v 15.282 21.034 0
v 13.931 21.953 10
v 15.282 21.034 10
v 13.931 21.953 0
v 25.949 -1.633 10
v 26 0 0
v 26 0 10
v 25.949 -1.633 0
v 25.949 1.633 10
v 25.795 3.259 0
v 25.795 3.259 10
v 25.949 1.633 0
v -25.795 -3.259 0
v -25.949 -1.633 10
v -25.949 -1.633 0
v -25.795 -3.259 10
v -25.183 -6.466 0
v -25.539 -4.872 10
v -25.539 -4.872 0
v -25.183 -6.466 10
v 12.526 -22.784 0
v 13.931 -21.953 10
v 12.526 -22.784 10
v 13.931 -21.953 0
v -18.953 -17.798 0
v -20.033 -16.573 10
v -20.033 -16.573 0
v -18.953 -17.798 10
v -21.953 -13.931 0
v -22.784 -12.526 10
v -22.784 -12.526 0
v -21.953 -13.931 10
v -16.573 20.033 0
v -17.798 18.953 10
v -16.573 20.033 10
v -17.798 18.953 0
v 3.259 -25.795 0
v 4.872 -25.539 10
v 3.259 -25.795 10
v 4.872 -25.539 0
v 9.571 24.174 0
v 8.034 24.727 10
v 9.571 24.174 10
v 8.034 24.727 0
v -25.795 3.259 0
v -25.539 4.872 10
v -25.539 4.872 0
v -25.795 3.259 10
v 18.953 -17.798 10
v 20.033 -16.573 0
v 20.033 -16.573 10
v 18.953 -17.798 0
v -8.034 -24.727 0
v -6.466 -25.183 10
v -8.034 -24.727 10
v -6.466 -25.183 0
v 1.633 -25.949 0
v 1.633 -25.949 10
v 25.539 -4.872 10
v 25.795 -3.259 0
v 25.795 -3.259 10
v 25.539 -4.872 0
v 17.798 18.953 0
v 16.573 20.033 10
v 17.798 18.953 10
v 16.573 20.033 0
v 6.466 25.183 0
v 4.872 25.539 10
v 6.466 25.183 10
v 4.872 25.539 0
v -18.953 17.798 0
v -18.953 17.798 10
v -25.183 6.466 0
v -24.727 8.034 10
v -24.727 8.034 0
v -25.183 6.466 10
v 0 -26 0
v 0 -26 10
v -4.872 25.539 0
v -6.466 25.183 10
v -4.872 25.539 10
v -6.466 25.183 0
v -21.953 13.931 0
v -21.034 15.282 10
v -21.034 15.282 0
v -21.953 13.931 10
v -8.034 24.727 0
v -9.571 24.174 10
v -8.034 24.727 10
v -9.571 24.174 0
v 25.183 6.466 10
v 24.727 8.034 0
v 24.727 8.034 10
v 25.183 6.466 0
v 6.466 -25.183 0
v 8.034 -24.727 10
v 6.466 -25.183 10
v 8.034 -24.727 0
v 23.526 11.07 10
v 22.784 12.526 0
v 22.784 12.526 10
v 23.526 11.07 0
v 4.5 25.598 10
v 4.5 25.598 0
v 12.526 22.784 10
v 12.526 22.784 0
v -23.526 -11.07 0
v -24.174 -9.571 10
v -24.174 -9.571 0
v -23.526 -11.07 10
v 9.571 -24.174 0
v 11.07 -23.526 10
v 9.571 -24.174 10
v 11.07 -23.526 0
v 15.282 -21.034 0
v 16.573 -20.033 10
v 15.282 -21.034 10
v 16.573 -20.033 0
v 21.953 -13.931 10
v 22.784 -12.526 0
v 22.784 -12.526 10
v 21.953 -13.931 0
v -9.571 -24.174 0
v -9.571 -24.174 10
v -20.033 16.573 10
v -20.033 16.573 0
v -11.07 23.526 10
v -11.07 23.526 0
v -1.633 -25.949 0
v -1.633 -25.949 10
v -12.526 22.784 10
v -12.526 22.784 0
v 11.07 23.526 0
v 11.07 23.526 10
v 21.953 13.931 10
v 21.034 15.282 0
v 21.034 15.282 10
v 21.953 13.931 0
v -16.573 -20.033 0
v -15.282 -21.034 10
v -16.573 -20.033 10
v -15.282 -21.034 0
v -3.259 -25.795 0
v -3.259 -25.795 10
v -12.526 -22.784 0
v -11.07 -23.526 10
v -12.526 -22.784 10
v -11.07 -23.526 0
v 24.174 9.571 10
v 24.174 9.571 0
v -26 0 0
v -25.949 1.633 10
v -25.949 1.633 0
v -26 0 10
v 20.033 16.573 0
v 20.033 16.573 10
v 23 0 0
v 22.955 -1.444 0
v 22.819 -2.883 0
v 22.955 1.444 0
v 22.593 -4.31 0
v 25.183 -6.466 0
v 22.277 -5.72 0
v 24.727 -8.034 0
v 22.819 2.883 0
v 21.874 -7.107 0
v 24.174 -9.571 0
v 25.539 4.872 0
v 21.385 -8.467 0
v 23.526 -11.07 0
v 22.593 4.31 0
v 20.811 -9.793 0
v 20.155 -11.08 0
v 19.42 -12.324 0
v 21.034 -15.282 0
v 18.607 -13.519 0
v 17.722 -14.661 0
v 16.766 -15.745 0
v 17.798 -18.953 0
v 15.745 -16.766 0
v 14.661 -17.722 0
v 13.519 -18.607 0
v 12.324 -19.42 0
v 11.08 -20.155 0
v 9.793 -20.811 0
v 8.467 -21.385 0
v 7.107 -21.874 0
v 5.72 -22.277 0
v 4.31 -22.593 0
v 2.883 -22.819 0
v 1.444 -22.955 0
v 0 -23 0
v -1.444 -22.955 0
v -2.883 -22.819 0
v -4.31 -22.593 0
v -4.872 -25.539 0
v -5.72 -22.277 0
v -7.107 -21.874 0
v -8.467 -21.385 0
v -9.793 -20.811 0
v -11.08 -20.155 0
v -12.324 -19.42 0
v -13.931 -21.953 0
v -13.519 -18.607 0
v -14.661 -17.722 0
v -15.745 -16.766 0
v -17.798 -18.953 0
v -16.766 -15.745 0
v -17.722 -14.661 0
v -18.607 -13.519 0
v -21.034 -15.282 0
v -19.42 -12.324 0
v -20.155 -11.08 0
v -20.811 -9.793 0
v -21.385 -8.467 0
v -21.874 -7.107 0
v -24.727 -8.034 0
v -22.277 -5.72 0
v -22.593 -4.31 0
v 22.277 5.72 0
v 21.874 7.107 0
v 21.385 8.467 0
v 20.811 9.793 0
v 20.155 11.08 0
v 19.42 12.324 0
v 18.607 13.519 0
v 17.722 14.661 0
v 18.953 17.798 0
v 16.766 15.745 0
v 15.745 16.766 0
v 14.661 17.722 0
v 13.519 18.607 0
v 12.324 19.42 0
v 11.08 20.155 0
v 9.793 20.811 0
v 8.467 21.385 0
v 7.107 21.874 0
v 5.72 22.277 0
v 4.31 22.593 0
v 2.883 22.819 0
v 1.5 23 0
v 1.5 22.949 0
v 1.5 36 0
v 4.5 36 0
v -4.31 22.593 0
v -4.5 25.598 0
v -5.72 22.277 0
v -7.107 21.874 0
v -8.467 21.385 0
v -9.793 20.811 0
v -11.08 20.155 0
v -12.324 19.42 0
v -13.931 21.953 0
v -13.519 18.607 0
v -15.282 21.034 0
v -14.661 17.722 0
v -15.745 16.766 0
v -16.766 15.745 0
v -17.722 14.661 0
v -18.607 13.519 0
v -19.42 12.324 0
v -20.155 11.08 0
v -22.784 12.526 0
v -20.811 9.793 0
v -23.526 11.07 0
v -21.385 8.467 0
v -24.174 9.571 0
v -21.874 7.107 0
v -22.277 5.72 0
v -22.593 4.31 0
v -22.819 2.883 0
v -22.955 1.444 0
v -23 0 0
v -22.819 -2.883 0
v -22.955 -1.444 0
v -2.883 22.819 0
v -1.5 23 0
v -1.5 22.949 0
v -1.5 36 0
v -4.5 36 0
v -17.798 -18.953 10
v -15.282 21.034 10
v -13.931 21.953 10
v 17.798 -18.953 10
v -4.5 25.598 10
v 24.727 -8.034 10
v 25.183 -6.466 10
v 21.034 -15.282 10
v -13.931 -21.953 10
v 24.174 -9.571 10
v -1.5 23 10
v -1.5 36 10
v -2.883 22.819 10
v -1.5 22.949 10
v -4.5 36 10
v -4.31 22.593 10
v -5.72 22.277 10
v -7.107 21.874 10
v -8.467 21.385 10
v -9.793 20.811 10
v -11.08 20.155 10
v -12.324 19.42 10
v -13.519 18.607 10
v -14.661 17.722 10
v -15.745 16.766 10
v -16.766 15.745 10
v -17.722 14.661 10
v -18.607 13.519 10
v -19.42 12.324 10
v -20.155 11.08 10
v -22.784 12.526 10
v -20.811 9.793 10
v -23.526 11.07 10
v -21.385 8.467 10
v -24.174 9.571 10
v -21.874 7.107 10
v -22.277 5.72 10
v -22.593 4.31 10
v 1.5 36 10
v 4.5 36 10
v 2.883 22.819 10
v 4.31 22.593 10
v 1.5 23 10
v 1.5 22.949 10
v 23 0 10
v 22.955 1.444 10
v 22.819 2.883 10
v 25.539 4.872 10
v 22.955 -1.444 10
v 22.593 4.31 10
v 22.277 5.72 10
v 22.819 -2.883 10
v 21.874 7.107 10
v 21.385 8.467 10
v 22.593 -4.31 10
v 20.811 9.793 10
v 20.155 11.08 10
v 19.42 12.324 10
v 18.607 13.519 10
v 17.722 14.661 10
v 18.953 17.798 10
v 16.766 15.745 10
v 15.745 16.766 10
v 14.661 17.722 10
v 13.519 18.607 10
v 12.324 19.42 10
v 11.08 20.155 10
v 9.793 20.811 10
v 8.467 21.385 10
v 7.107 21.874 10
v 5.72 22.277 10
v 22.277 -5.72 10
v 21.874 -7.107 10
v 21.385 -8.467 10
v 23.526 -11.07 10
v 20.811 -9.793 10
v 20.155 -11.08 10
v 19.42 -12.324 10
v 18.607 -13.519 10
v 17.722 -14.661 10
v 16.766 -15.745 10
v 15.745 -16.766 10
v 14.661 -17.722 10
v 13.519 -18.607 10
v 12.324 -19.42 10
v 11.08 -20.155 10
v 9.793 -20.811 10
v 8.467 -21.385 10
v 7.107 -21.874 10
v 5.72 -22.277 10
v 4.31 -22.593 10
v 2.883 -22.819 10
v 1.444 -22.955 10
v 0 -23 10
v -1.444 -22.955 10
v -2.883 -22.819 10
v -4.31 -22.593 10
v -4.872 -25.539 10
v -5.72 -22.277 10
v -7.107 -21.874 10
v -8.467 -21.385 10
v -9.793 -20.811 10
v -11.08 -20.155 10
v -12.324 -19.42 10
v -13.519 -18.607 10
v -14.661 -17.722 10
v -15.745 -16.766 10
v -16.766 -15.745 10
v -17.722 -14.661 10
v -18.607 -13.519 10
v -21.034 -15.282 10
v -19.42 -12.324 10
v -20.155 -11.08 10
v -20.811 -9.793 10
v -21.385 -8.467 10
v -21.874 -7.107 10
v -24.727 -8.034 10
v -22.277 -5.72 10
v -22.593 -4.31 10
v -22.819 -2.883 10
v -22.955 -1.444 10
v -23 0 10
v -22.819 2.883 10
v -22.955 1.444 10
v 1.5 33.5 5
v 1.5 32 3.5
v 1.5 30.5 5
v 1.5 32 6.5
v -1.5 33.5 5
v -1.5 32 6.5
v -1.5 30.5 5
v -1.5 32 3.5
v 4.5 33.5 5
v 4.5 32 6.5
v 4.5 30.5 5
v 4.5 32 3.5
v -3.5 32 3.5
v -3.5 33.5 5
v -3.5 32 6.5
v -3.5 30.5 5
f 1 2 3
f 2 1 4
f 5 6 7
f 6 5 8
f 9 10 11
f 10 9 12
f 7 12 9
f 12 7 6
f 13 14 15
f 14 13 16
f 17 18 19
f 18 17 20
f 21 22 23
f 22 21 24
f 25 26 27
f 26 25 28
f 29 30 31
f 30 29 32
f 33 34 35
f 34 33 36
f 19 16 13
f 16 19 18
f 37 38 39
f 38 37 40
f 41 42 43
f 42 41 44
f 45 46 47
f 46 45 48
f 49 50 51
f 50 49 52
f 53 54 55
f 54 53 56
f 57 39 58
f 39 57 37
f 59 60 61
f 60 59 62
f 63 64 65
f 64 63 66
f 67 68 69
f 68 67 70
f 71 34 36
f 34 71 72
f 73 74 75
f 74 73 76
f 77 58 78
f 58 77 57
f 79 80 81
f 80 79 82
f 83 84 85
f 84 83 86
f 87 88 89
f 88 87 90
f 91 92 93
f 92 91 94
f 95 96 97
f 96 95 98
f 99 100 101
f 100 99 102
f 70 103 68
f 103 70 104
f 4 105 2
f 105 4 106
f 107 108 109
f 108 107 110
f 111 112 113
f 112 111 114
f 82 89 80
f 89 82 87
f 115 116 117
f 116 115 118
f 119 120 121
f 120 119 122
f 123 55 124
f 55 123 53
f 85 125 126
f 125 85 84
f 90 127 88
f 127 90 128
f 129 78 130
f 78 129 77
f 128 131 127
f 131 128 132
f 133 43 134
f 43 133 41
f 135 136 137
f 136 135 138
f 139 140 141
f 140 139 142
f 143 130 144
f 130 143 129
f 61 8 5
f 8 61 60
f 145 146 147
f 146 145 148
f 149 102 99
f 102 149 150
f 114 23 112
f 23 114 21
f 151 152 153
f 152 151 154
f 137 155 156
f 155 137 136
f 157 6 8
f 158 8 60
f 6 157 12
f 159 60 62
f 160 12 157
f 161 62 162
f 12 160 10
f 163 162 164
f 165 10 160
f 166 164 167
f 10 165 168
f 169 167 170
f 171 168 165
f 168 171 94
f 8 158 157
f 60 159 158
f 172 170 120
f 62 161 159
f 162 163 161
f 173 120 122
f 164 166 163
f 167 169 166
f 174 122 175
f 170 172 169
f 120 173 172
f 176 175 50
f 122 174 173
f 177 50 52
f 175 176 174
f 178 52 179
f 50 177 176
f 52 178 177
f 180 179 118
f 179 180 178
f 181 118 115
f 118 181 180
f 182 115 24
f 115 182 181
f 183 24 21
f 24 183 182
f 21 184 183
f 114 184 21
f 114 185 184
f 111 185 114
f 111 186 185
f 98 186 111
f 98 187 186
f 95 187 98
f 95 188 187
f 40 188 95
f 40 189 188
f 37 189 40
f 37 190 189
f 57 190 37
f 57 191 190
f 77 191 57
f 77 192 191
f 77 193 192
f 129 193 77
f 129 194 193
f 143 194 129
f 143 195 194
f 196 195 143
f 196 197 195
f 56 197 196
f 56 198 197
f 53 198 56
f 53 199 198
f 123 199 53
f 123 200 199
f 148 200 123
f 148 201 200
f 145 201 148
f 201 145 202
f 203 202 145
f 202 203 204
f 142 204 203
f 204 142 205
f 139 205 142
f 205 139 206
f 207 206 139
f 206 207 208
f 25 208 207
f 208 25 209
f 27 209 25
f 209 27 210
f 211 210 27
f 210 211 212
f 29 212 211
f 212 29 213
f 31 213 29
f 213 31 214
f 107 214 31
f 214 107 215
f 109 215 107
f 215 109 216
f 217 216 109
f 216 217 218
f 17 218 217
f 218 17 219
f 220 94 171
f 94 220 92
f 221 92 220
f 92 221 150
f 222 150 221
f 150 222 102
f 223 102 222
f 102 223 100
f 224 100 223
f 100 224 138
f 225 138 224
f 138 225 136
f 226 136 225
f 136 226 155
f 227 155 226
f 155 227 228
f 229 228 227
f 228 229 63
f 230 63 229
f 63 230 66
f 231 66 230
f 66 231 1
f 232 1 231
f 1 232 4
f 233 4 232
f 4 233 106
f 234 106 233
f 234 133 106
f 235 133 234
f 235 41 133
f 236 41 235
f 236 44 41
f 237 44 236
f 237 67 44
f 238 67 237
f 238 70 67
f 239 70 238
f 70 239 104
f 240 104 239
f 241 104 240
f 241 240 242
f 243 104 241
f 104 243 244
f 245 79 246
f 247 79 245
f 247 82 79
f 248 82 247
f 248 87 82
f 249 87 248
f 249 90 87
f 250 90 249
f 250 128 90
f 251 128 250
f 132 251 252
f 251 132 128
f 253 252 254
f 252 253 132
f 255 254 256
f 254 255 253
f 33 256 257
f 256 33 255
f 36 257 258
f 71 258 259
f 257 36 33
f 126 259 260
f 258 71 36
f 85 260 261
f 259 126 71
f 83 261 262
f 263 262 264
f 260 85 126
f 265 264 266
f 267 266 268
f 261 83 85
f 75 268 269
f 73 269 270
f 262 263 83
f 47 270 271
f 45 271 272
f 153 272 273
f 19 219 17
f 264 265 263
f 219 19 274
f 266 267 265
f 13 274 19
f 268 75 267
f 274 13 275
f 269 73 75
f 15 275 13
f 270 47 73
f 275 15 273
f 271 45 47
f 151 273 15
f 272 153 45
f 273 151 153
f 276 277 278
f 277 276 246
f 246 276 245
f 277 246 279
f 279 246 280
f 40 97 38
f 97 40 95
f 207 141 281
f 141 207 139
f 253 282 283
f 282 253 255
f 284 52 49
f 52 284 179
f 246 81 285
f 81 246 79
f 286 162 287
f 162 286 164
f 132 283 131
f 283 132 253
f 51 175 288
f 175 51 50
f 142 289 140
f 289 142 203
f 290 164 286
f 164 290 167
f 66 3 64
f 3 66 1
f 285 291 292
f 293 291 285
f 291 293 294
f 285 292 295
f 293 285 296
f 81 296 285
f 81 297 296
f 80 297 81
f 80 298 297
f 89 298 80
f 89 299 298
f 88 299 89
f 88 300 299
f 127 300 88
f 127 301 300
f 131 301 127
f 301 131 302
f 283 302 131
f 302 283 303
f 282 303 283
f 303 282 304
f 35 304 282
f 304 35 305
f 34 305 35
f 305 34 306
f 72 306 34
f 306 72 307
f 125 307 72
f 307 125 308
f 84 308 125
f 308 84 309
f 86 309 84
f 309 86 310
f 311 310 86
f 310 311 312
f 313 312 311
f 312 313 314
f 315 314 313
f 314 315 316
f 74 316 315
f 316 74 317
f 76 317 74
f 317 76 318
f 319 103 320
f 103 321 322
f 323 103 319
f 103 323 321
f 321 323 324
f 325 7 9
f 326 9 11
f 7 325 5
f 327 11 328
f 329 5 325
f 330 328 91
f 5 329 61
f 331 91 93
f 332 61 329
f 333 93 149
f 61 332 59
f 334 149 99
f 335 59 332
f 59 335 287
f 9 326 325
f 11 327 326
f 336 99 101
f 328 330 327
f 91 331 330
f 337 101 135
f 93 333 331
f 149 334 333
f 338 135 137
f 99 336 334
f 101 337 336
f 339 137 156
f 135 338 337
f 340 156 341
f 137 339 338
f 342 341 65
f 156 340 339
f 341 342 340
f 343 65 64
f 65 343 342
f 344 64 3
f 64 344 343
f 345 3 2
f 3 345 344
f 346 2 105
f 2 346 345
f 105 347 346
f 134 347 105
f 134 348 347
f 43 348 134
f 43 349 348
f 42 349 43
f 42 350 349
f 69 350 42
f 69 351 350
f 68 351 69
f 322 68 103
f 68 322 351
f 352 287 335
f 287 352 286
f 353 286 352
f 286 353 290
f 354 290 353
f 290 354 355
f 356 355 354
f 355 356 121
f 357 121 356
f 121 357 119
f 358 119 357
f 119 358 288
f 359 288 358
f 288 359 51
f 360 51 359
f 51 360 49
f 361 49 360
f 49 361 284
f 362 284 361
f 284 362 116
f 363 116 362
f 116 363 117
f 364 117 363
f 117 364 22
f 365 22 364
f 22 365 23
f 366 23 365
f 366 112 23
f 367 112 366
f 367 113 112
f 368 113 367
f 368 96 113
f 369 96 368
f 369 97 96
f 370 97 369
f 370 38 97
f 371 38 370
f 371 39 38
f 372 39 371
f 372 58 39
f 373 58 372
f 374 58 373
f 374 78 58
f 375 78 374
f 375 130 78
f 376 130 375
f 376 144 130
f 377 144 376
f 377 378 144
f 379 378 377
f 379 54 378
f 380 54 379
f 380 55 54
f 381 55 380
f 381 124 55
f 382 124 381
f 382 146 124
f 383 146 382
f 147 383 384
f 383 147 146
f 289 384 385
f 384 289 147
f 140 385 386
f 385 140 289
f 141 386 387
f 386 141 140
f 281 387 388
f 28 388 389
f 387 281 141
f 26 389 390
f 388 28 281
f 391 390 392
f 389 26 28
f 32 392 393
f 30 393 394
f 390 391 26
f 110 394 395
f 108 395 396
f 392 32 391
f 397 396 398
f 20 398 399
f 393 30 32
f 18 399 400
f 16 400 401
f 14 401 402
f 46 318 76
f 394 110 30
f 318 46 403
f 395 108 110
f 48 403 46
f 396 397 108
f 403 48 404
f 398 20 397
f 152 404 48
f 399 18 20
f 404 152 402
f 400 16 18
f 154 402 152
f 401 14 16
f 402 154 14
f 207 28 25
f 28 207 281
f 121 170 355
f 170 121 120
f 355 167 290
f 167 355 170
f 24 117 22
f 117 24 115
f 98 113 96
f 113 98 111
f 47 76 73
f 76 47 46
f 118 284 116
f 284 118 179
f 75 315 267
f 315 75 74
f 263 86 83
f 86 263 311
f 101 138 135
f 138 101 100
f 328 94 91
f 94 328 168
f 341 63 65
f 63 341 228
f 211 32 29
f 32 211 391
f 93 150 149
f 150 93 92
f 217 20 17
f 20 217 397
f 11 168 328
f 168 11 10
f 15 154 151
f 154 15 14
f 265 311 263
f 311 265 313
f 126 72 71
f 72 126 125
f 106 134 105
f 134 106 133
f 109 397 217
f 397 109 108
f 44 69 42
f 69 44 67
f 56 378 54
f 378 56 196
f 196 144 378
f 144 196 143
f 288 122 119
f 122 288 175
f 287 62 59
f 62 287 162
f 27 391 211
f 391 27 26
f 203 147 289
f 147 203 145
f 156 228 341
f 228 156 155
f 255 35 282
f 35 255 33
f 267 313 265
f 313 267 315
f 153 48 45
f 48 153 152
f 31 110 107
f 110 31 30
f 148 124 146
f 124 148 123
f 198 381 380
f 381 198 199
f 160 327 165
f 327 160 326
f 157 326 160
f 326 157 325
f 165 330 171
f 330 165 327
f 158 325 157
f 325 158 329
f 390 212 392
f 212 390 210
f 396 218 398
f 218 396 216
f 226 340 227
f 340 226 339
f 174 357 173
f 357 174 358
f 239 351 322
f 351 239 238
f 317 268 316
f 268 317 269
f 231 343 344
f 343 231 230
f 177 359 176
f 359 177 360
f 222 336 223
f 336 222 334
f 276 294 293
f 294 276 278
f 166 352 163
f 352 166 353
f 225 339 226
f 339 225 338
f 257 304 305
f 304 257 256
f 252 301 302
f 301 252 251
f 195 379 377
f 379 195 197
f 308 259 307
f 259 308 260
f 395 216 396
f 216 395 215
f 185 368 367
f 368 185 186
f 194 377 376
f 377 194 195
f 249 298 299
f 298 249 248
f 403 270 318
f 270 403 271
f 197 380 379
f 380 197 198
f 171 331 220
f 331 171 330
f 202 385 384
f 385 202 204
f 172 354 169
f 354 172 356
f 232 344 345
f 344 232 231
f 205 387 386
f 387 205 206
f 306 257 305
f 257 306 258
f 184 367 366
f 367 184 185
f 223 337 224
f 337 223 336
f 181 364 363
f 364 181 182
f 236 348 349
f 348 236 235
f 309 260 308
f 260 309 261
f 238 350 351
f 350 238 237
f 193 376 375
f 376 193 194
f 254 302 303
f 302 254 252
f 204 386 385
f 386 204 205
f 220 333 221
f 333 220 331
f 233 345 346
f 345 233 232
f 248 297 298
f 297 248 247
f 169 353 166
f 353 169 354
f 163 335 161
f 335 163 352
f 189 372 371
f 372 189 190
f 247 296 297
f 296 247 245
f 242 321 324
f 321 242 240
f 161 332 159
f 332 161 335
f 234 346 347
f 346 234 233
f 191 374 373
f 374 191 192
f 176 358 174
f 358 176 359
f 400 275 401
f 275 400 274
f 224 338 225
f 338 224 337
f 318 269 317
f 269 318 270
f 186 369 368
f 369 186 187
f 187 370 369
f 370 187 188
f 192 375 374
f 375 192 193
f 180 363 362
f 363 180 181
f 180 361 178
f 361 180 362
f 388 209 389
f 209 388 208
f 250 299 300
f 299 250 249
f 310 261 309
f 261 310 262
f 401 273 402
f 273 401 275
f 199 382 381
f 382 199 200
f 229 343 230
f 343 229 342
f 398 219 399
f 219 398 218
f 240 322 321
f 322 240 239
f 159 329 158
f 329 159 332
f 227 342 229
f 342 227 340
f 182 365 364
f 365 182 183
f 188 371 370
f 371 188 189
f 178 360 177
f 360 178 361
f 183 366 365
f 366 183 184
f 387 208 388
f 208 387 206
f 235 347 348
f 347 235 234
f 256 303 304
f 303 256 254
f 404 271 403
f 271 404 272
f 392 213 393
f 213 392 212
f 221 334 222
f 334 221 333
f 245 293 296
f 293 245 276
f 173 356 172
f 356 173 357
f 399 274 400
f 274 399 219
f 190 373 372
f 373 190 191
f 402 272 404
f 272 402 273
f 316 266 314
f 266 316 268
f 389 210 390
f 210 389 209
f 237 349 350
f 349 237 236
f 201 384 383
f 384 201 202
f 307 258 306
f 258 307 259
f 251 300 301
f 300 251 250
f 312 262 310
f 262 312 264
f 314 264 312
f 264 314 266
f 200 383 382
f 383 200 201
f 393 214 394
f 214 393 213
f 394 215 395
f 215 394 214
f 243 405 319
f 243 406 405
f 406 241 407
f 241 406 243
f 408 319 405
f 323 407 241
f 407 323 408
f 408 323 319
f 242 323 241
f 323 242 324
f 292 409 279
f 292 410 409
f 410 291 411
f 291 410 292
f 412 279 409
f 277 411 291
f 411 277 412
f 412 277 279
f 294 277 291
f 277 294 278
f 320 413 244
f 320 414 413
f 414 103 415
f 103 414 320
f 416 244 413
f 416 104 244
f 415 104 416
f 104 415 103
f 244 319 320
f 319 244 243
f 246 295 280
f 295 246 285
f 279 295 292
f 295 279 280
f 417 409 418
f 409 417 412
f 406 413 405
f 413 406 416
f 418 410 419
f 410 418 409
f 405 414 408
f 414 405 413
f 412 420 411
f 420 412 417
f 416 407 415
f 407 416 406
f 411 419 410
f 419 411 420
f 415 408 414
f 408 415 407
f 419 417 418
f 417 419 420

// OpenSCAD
/** Хомут
D - diametr
H - Hight
T - thick
S - split
D1 - diam vint
*/

module homut1(D=46, H=10, T=3, S=3, D1=3){
    r=D/2;
    r1=D1/2;
    zazor=D+T;

        difference(){
            difference(){
                scale([1,1,H]){
                    difference(){
                        difference(){
                            cylinder(1, r+T,r+T, $fn=100);
                            cylinder(1, r, r, $fn=100);
                        }
                        translate([-S/2, 0, 0]){
                          cube([S, r+T, 1]);
                        }
                    }

                    uhoH=D1+10;
                    translate([S/2,r,0]){
                        cube([T, uhoH, 1]);
                    }
                    translate([-S*1.5,r,0]){
                        cube([T, uhoH, 1]);
                    }
                }
                // отверстие
                translate([S/2, r+T+2*D1, H/2]){
                    rotate([0,90,0]){
                        cylinder(H,r1, r1, $fn=4, center=true);
                    }
                }
            }
            /**
            %translate([0,36,1]){
                rotate([45,0,0]){
                    cube([r,r,r], center=true);
                }
            }*/

        /** %translate([-zazor/2-1,0,0])
            cube([D+T*2,r+T+5,0.8]);
            */
        }
}

homut1();
